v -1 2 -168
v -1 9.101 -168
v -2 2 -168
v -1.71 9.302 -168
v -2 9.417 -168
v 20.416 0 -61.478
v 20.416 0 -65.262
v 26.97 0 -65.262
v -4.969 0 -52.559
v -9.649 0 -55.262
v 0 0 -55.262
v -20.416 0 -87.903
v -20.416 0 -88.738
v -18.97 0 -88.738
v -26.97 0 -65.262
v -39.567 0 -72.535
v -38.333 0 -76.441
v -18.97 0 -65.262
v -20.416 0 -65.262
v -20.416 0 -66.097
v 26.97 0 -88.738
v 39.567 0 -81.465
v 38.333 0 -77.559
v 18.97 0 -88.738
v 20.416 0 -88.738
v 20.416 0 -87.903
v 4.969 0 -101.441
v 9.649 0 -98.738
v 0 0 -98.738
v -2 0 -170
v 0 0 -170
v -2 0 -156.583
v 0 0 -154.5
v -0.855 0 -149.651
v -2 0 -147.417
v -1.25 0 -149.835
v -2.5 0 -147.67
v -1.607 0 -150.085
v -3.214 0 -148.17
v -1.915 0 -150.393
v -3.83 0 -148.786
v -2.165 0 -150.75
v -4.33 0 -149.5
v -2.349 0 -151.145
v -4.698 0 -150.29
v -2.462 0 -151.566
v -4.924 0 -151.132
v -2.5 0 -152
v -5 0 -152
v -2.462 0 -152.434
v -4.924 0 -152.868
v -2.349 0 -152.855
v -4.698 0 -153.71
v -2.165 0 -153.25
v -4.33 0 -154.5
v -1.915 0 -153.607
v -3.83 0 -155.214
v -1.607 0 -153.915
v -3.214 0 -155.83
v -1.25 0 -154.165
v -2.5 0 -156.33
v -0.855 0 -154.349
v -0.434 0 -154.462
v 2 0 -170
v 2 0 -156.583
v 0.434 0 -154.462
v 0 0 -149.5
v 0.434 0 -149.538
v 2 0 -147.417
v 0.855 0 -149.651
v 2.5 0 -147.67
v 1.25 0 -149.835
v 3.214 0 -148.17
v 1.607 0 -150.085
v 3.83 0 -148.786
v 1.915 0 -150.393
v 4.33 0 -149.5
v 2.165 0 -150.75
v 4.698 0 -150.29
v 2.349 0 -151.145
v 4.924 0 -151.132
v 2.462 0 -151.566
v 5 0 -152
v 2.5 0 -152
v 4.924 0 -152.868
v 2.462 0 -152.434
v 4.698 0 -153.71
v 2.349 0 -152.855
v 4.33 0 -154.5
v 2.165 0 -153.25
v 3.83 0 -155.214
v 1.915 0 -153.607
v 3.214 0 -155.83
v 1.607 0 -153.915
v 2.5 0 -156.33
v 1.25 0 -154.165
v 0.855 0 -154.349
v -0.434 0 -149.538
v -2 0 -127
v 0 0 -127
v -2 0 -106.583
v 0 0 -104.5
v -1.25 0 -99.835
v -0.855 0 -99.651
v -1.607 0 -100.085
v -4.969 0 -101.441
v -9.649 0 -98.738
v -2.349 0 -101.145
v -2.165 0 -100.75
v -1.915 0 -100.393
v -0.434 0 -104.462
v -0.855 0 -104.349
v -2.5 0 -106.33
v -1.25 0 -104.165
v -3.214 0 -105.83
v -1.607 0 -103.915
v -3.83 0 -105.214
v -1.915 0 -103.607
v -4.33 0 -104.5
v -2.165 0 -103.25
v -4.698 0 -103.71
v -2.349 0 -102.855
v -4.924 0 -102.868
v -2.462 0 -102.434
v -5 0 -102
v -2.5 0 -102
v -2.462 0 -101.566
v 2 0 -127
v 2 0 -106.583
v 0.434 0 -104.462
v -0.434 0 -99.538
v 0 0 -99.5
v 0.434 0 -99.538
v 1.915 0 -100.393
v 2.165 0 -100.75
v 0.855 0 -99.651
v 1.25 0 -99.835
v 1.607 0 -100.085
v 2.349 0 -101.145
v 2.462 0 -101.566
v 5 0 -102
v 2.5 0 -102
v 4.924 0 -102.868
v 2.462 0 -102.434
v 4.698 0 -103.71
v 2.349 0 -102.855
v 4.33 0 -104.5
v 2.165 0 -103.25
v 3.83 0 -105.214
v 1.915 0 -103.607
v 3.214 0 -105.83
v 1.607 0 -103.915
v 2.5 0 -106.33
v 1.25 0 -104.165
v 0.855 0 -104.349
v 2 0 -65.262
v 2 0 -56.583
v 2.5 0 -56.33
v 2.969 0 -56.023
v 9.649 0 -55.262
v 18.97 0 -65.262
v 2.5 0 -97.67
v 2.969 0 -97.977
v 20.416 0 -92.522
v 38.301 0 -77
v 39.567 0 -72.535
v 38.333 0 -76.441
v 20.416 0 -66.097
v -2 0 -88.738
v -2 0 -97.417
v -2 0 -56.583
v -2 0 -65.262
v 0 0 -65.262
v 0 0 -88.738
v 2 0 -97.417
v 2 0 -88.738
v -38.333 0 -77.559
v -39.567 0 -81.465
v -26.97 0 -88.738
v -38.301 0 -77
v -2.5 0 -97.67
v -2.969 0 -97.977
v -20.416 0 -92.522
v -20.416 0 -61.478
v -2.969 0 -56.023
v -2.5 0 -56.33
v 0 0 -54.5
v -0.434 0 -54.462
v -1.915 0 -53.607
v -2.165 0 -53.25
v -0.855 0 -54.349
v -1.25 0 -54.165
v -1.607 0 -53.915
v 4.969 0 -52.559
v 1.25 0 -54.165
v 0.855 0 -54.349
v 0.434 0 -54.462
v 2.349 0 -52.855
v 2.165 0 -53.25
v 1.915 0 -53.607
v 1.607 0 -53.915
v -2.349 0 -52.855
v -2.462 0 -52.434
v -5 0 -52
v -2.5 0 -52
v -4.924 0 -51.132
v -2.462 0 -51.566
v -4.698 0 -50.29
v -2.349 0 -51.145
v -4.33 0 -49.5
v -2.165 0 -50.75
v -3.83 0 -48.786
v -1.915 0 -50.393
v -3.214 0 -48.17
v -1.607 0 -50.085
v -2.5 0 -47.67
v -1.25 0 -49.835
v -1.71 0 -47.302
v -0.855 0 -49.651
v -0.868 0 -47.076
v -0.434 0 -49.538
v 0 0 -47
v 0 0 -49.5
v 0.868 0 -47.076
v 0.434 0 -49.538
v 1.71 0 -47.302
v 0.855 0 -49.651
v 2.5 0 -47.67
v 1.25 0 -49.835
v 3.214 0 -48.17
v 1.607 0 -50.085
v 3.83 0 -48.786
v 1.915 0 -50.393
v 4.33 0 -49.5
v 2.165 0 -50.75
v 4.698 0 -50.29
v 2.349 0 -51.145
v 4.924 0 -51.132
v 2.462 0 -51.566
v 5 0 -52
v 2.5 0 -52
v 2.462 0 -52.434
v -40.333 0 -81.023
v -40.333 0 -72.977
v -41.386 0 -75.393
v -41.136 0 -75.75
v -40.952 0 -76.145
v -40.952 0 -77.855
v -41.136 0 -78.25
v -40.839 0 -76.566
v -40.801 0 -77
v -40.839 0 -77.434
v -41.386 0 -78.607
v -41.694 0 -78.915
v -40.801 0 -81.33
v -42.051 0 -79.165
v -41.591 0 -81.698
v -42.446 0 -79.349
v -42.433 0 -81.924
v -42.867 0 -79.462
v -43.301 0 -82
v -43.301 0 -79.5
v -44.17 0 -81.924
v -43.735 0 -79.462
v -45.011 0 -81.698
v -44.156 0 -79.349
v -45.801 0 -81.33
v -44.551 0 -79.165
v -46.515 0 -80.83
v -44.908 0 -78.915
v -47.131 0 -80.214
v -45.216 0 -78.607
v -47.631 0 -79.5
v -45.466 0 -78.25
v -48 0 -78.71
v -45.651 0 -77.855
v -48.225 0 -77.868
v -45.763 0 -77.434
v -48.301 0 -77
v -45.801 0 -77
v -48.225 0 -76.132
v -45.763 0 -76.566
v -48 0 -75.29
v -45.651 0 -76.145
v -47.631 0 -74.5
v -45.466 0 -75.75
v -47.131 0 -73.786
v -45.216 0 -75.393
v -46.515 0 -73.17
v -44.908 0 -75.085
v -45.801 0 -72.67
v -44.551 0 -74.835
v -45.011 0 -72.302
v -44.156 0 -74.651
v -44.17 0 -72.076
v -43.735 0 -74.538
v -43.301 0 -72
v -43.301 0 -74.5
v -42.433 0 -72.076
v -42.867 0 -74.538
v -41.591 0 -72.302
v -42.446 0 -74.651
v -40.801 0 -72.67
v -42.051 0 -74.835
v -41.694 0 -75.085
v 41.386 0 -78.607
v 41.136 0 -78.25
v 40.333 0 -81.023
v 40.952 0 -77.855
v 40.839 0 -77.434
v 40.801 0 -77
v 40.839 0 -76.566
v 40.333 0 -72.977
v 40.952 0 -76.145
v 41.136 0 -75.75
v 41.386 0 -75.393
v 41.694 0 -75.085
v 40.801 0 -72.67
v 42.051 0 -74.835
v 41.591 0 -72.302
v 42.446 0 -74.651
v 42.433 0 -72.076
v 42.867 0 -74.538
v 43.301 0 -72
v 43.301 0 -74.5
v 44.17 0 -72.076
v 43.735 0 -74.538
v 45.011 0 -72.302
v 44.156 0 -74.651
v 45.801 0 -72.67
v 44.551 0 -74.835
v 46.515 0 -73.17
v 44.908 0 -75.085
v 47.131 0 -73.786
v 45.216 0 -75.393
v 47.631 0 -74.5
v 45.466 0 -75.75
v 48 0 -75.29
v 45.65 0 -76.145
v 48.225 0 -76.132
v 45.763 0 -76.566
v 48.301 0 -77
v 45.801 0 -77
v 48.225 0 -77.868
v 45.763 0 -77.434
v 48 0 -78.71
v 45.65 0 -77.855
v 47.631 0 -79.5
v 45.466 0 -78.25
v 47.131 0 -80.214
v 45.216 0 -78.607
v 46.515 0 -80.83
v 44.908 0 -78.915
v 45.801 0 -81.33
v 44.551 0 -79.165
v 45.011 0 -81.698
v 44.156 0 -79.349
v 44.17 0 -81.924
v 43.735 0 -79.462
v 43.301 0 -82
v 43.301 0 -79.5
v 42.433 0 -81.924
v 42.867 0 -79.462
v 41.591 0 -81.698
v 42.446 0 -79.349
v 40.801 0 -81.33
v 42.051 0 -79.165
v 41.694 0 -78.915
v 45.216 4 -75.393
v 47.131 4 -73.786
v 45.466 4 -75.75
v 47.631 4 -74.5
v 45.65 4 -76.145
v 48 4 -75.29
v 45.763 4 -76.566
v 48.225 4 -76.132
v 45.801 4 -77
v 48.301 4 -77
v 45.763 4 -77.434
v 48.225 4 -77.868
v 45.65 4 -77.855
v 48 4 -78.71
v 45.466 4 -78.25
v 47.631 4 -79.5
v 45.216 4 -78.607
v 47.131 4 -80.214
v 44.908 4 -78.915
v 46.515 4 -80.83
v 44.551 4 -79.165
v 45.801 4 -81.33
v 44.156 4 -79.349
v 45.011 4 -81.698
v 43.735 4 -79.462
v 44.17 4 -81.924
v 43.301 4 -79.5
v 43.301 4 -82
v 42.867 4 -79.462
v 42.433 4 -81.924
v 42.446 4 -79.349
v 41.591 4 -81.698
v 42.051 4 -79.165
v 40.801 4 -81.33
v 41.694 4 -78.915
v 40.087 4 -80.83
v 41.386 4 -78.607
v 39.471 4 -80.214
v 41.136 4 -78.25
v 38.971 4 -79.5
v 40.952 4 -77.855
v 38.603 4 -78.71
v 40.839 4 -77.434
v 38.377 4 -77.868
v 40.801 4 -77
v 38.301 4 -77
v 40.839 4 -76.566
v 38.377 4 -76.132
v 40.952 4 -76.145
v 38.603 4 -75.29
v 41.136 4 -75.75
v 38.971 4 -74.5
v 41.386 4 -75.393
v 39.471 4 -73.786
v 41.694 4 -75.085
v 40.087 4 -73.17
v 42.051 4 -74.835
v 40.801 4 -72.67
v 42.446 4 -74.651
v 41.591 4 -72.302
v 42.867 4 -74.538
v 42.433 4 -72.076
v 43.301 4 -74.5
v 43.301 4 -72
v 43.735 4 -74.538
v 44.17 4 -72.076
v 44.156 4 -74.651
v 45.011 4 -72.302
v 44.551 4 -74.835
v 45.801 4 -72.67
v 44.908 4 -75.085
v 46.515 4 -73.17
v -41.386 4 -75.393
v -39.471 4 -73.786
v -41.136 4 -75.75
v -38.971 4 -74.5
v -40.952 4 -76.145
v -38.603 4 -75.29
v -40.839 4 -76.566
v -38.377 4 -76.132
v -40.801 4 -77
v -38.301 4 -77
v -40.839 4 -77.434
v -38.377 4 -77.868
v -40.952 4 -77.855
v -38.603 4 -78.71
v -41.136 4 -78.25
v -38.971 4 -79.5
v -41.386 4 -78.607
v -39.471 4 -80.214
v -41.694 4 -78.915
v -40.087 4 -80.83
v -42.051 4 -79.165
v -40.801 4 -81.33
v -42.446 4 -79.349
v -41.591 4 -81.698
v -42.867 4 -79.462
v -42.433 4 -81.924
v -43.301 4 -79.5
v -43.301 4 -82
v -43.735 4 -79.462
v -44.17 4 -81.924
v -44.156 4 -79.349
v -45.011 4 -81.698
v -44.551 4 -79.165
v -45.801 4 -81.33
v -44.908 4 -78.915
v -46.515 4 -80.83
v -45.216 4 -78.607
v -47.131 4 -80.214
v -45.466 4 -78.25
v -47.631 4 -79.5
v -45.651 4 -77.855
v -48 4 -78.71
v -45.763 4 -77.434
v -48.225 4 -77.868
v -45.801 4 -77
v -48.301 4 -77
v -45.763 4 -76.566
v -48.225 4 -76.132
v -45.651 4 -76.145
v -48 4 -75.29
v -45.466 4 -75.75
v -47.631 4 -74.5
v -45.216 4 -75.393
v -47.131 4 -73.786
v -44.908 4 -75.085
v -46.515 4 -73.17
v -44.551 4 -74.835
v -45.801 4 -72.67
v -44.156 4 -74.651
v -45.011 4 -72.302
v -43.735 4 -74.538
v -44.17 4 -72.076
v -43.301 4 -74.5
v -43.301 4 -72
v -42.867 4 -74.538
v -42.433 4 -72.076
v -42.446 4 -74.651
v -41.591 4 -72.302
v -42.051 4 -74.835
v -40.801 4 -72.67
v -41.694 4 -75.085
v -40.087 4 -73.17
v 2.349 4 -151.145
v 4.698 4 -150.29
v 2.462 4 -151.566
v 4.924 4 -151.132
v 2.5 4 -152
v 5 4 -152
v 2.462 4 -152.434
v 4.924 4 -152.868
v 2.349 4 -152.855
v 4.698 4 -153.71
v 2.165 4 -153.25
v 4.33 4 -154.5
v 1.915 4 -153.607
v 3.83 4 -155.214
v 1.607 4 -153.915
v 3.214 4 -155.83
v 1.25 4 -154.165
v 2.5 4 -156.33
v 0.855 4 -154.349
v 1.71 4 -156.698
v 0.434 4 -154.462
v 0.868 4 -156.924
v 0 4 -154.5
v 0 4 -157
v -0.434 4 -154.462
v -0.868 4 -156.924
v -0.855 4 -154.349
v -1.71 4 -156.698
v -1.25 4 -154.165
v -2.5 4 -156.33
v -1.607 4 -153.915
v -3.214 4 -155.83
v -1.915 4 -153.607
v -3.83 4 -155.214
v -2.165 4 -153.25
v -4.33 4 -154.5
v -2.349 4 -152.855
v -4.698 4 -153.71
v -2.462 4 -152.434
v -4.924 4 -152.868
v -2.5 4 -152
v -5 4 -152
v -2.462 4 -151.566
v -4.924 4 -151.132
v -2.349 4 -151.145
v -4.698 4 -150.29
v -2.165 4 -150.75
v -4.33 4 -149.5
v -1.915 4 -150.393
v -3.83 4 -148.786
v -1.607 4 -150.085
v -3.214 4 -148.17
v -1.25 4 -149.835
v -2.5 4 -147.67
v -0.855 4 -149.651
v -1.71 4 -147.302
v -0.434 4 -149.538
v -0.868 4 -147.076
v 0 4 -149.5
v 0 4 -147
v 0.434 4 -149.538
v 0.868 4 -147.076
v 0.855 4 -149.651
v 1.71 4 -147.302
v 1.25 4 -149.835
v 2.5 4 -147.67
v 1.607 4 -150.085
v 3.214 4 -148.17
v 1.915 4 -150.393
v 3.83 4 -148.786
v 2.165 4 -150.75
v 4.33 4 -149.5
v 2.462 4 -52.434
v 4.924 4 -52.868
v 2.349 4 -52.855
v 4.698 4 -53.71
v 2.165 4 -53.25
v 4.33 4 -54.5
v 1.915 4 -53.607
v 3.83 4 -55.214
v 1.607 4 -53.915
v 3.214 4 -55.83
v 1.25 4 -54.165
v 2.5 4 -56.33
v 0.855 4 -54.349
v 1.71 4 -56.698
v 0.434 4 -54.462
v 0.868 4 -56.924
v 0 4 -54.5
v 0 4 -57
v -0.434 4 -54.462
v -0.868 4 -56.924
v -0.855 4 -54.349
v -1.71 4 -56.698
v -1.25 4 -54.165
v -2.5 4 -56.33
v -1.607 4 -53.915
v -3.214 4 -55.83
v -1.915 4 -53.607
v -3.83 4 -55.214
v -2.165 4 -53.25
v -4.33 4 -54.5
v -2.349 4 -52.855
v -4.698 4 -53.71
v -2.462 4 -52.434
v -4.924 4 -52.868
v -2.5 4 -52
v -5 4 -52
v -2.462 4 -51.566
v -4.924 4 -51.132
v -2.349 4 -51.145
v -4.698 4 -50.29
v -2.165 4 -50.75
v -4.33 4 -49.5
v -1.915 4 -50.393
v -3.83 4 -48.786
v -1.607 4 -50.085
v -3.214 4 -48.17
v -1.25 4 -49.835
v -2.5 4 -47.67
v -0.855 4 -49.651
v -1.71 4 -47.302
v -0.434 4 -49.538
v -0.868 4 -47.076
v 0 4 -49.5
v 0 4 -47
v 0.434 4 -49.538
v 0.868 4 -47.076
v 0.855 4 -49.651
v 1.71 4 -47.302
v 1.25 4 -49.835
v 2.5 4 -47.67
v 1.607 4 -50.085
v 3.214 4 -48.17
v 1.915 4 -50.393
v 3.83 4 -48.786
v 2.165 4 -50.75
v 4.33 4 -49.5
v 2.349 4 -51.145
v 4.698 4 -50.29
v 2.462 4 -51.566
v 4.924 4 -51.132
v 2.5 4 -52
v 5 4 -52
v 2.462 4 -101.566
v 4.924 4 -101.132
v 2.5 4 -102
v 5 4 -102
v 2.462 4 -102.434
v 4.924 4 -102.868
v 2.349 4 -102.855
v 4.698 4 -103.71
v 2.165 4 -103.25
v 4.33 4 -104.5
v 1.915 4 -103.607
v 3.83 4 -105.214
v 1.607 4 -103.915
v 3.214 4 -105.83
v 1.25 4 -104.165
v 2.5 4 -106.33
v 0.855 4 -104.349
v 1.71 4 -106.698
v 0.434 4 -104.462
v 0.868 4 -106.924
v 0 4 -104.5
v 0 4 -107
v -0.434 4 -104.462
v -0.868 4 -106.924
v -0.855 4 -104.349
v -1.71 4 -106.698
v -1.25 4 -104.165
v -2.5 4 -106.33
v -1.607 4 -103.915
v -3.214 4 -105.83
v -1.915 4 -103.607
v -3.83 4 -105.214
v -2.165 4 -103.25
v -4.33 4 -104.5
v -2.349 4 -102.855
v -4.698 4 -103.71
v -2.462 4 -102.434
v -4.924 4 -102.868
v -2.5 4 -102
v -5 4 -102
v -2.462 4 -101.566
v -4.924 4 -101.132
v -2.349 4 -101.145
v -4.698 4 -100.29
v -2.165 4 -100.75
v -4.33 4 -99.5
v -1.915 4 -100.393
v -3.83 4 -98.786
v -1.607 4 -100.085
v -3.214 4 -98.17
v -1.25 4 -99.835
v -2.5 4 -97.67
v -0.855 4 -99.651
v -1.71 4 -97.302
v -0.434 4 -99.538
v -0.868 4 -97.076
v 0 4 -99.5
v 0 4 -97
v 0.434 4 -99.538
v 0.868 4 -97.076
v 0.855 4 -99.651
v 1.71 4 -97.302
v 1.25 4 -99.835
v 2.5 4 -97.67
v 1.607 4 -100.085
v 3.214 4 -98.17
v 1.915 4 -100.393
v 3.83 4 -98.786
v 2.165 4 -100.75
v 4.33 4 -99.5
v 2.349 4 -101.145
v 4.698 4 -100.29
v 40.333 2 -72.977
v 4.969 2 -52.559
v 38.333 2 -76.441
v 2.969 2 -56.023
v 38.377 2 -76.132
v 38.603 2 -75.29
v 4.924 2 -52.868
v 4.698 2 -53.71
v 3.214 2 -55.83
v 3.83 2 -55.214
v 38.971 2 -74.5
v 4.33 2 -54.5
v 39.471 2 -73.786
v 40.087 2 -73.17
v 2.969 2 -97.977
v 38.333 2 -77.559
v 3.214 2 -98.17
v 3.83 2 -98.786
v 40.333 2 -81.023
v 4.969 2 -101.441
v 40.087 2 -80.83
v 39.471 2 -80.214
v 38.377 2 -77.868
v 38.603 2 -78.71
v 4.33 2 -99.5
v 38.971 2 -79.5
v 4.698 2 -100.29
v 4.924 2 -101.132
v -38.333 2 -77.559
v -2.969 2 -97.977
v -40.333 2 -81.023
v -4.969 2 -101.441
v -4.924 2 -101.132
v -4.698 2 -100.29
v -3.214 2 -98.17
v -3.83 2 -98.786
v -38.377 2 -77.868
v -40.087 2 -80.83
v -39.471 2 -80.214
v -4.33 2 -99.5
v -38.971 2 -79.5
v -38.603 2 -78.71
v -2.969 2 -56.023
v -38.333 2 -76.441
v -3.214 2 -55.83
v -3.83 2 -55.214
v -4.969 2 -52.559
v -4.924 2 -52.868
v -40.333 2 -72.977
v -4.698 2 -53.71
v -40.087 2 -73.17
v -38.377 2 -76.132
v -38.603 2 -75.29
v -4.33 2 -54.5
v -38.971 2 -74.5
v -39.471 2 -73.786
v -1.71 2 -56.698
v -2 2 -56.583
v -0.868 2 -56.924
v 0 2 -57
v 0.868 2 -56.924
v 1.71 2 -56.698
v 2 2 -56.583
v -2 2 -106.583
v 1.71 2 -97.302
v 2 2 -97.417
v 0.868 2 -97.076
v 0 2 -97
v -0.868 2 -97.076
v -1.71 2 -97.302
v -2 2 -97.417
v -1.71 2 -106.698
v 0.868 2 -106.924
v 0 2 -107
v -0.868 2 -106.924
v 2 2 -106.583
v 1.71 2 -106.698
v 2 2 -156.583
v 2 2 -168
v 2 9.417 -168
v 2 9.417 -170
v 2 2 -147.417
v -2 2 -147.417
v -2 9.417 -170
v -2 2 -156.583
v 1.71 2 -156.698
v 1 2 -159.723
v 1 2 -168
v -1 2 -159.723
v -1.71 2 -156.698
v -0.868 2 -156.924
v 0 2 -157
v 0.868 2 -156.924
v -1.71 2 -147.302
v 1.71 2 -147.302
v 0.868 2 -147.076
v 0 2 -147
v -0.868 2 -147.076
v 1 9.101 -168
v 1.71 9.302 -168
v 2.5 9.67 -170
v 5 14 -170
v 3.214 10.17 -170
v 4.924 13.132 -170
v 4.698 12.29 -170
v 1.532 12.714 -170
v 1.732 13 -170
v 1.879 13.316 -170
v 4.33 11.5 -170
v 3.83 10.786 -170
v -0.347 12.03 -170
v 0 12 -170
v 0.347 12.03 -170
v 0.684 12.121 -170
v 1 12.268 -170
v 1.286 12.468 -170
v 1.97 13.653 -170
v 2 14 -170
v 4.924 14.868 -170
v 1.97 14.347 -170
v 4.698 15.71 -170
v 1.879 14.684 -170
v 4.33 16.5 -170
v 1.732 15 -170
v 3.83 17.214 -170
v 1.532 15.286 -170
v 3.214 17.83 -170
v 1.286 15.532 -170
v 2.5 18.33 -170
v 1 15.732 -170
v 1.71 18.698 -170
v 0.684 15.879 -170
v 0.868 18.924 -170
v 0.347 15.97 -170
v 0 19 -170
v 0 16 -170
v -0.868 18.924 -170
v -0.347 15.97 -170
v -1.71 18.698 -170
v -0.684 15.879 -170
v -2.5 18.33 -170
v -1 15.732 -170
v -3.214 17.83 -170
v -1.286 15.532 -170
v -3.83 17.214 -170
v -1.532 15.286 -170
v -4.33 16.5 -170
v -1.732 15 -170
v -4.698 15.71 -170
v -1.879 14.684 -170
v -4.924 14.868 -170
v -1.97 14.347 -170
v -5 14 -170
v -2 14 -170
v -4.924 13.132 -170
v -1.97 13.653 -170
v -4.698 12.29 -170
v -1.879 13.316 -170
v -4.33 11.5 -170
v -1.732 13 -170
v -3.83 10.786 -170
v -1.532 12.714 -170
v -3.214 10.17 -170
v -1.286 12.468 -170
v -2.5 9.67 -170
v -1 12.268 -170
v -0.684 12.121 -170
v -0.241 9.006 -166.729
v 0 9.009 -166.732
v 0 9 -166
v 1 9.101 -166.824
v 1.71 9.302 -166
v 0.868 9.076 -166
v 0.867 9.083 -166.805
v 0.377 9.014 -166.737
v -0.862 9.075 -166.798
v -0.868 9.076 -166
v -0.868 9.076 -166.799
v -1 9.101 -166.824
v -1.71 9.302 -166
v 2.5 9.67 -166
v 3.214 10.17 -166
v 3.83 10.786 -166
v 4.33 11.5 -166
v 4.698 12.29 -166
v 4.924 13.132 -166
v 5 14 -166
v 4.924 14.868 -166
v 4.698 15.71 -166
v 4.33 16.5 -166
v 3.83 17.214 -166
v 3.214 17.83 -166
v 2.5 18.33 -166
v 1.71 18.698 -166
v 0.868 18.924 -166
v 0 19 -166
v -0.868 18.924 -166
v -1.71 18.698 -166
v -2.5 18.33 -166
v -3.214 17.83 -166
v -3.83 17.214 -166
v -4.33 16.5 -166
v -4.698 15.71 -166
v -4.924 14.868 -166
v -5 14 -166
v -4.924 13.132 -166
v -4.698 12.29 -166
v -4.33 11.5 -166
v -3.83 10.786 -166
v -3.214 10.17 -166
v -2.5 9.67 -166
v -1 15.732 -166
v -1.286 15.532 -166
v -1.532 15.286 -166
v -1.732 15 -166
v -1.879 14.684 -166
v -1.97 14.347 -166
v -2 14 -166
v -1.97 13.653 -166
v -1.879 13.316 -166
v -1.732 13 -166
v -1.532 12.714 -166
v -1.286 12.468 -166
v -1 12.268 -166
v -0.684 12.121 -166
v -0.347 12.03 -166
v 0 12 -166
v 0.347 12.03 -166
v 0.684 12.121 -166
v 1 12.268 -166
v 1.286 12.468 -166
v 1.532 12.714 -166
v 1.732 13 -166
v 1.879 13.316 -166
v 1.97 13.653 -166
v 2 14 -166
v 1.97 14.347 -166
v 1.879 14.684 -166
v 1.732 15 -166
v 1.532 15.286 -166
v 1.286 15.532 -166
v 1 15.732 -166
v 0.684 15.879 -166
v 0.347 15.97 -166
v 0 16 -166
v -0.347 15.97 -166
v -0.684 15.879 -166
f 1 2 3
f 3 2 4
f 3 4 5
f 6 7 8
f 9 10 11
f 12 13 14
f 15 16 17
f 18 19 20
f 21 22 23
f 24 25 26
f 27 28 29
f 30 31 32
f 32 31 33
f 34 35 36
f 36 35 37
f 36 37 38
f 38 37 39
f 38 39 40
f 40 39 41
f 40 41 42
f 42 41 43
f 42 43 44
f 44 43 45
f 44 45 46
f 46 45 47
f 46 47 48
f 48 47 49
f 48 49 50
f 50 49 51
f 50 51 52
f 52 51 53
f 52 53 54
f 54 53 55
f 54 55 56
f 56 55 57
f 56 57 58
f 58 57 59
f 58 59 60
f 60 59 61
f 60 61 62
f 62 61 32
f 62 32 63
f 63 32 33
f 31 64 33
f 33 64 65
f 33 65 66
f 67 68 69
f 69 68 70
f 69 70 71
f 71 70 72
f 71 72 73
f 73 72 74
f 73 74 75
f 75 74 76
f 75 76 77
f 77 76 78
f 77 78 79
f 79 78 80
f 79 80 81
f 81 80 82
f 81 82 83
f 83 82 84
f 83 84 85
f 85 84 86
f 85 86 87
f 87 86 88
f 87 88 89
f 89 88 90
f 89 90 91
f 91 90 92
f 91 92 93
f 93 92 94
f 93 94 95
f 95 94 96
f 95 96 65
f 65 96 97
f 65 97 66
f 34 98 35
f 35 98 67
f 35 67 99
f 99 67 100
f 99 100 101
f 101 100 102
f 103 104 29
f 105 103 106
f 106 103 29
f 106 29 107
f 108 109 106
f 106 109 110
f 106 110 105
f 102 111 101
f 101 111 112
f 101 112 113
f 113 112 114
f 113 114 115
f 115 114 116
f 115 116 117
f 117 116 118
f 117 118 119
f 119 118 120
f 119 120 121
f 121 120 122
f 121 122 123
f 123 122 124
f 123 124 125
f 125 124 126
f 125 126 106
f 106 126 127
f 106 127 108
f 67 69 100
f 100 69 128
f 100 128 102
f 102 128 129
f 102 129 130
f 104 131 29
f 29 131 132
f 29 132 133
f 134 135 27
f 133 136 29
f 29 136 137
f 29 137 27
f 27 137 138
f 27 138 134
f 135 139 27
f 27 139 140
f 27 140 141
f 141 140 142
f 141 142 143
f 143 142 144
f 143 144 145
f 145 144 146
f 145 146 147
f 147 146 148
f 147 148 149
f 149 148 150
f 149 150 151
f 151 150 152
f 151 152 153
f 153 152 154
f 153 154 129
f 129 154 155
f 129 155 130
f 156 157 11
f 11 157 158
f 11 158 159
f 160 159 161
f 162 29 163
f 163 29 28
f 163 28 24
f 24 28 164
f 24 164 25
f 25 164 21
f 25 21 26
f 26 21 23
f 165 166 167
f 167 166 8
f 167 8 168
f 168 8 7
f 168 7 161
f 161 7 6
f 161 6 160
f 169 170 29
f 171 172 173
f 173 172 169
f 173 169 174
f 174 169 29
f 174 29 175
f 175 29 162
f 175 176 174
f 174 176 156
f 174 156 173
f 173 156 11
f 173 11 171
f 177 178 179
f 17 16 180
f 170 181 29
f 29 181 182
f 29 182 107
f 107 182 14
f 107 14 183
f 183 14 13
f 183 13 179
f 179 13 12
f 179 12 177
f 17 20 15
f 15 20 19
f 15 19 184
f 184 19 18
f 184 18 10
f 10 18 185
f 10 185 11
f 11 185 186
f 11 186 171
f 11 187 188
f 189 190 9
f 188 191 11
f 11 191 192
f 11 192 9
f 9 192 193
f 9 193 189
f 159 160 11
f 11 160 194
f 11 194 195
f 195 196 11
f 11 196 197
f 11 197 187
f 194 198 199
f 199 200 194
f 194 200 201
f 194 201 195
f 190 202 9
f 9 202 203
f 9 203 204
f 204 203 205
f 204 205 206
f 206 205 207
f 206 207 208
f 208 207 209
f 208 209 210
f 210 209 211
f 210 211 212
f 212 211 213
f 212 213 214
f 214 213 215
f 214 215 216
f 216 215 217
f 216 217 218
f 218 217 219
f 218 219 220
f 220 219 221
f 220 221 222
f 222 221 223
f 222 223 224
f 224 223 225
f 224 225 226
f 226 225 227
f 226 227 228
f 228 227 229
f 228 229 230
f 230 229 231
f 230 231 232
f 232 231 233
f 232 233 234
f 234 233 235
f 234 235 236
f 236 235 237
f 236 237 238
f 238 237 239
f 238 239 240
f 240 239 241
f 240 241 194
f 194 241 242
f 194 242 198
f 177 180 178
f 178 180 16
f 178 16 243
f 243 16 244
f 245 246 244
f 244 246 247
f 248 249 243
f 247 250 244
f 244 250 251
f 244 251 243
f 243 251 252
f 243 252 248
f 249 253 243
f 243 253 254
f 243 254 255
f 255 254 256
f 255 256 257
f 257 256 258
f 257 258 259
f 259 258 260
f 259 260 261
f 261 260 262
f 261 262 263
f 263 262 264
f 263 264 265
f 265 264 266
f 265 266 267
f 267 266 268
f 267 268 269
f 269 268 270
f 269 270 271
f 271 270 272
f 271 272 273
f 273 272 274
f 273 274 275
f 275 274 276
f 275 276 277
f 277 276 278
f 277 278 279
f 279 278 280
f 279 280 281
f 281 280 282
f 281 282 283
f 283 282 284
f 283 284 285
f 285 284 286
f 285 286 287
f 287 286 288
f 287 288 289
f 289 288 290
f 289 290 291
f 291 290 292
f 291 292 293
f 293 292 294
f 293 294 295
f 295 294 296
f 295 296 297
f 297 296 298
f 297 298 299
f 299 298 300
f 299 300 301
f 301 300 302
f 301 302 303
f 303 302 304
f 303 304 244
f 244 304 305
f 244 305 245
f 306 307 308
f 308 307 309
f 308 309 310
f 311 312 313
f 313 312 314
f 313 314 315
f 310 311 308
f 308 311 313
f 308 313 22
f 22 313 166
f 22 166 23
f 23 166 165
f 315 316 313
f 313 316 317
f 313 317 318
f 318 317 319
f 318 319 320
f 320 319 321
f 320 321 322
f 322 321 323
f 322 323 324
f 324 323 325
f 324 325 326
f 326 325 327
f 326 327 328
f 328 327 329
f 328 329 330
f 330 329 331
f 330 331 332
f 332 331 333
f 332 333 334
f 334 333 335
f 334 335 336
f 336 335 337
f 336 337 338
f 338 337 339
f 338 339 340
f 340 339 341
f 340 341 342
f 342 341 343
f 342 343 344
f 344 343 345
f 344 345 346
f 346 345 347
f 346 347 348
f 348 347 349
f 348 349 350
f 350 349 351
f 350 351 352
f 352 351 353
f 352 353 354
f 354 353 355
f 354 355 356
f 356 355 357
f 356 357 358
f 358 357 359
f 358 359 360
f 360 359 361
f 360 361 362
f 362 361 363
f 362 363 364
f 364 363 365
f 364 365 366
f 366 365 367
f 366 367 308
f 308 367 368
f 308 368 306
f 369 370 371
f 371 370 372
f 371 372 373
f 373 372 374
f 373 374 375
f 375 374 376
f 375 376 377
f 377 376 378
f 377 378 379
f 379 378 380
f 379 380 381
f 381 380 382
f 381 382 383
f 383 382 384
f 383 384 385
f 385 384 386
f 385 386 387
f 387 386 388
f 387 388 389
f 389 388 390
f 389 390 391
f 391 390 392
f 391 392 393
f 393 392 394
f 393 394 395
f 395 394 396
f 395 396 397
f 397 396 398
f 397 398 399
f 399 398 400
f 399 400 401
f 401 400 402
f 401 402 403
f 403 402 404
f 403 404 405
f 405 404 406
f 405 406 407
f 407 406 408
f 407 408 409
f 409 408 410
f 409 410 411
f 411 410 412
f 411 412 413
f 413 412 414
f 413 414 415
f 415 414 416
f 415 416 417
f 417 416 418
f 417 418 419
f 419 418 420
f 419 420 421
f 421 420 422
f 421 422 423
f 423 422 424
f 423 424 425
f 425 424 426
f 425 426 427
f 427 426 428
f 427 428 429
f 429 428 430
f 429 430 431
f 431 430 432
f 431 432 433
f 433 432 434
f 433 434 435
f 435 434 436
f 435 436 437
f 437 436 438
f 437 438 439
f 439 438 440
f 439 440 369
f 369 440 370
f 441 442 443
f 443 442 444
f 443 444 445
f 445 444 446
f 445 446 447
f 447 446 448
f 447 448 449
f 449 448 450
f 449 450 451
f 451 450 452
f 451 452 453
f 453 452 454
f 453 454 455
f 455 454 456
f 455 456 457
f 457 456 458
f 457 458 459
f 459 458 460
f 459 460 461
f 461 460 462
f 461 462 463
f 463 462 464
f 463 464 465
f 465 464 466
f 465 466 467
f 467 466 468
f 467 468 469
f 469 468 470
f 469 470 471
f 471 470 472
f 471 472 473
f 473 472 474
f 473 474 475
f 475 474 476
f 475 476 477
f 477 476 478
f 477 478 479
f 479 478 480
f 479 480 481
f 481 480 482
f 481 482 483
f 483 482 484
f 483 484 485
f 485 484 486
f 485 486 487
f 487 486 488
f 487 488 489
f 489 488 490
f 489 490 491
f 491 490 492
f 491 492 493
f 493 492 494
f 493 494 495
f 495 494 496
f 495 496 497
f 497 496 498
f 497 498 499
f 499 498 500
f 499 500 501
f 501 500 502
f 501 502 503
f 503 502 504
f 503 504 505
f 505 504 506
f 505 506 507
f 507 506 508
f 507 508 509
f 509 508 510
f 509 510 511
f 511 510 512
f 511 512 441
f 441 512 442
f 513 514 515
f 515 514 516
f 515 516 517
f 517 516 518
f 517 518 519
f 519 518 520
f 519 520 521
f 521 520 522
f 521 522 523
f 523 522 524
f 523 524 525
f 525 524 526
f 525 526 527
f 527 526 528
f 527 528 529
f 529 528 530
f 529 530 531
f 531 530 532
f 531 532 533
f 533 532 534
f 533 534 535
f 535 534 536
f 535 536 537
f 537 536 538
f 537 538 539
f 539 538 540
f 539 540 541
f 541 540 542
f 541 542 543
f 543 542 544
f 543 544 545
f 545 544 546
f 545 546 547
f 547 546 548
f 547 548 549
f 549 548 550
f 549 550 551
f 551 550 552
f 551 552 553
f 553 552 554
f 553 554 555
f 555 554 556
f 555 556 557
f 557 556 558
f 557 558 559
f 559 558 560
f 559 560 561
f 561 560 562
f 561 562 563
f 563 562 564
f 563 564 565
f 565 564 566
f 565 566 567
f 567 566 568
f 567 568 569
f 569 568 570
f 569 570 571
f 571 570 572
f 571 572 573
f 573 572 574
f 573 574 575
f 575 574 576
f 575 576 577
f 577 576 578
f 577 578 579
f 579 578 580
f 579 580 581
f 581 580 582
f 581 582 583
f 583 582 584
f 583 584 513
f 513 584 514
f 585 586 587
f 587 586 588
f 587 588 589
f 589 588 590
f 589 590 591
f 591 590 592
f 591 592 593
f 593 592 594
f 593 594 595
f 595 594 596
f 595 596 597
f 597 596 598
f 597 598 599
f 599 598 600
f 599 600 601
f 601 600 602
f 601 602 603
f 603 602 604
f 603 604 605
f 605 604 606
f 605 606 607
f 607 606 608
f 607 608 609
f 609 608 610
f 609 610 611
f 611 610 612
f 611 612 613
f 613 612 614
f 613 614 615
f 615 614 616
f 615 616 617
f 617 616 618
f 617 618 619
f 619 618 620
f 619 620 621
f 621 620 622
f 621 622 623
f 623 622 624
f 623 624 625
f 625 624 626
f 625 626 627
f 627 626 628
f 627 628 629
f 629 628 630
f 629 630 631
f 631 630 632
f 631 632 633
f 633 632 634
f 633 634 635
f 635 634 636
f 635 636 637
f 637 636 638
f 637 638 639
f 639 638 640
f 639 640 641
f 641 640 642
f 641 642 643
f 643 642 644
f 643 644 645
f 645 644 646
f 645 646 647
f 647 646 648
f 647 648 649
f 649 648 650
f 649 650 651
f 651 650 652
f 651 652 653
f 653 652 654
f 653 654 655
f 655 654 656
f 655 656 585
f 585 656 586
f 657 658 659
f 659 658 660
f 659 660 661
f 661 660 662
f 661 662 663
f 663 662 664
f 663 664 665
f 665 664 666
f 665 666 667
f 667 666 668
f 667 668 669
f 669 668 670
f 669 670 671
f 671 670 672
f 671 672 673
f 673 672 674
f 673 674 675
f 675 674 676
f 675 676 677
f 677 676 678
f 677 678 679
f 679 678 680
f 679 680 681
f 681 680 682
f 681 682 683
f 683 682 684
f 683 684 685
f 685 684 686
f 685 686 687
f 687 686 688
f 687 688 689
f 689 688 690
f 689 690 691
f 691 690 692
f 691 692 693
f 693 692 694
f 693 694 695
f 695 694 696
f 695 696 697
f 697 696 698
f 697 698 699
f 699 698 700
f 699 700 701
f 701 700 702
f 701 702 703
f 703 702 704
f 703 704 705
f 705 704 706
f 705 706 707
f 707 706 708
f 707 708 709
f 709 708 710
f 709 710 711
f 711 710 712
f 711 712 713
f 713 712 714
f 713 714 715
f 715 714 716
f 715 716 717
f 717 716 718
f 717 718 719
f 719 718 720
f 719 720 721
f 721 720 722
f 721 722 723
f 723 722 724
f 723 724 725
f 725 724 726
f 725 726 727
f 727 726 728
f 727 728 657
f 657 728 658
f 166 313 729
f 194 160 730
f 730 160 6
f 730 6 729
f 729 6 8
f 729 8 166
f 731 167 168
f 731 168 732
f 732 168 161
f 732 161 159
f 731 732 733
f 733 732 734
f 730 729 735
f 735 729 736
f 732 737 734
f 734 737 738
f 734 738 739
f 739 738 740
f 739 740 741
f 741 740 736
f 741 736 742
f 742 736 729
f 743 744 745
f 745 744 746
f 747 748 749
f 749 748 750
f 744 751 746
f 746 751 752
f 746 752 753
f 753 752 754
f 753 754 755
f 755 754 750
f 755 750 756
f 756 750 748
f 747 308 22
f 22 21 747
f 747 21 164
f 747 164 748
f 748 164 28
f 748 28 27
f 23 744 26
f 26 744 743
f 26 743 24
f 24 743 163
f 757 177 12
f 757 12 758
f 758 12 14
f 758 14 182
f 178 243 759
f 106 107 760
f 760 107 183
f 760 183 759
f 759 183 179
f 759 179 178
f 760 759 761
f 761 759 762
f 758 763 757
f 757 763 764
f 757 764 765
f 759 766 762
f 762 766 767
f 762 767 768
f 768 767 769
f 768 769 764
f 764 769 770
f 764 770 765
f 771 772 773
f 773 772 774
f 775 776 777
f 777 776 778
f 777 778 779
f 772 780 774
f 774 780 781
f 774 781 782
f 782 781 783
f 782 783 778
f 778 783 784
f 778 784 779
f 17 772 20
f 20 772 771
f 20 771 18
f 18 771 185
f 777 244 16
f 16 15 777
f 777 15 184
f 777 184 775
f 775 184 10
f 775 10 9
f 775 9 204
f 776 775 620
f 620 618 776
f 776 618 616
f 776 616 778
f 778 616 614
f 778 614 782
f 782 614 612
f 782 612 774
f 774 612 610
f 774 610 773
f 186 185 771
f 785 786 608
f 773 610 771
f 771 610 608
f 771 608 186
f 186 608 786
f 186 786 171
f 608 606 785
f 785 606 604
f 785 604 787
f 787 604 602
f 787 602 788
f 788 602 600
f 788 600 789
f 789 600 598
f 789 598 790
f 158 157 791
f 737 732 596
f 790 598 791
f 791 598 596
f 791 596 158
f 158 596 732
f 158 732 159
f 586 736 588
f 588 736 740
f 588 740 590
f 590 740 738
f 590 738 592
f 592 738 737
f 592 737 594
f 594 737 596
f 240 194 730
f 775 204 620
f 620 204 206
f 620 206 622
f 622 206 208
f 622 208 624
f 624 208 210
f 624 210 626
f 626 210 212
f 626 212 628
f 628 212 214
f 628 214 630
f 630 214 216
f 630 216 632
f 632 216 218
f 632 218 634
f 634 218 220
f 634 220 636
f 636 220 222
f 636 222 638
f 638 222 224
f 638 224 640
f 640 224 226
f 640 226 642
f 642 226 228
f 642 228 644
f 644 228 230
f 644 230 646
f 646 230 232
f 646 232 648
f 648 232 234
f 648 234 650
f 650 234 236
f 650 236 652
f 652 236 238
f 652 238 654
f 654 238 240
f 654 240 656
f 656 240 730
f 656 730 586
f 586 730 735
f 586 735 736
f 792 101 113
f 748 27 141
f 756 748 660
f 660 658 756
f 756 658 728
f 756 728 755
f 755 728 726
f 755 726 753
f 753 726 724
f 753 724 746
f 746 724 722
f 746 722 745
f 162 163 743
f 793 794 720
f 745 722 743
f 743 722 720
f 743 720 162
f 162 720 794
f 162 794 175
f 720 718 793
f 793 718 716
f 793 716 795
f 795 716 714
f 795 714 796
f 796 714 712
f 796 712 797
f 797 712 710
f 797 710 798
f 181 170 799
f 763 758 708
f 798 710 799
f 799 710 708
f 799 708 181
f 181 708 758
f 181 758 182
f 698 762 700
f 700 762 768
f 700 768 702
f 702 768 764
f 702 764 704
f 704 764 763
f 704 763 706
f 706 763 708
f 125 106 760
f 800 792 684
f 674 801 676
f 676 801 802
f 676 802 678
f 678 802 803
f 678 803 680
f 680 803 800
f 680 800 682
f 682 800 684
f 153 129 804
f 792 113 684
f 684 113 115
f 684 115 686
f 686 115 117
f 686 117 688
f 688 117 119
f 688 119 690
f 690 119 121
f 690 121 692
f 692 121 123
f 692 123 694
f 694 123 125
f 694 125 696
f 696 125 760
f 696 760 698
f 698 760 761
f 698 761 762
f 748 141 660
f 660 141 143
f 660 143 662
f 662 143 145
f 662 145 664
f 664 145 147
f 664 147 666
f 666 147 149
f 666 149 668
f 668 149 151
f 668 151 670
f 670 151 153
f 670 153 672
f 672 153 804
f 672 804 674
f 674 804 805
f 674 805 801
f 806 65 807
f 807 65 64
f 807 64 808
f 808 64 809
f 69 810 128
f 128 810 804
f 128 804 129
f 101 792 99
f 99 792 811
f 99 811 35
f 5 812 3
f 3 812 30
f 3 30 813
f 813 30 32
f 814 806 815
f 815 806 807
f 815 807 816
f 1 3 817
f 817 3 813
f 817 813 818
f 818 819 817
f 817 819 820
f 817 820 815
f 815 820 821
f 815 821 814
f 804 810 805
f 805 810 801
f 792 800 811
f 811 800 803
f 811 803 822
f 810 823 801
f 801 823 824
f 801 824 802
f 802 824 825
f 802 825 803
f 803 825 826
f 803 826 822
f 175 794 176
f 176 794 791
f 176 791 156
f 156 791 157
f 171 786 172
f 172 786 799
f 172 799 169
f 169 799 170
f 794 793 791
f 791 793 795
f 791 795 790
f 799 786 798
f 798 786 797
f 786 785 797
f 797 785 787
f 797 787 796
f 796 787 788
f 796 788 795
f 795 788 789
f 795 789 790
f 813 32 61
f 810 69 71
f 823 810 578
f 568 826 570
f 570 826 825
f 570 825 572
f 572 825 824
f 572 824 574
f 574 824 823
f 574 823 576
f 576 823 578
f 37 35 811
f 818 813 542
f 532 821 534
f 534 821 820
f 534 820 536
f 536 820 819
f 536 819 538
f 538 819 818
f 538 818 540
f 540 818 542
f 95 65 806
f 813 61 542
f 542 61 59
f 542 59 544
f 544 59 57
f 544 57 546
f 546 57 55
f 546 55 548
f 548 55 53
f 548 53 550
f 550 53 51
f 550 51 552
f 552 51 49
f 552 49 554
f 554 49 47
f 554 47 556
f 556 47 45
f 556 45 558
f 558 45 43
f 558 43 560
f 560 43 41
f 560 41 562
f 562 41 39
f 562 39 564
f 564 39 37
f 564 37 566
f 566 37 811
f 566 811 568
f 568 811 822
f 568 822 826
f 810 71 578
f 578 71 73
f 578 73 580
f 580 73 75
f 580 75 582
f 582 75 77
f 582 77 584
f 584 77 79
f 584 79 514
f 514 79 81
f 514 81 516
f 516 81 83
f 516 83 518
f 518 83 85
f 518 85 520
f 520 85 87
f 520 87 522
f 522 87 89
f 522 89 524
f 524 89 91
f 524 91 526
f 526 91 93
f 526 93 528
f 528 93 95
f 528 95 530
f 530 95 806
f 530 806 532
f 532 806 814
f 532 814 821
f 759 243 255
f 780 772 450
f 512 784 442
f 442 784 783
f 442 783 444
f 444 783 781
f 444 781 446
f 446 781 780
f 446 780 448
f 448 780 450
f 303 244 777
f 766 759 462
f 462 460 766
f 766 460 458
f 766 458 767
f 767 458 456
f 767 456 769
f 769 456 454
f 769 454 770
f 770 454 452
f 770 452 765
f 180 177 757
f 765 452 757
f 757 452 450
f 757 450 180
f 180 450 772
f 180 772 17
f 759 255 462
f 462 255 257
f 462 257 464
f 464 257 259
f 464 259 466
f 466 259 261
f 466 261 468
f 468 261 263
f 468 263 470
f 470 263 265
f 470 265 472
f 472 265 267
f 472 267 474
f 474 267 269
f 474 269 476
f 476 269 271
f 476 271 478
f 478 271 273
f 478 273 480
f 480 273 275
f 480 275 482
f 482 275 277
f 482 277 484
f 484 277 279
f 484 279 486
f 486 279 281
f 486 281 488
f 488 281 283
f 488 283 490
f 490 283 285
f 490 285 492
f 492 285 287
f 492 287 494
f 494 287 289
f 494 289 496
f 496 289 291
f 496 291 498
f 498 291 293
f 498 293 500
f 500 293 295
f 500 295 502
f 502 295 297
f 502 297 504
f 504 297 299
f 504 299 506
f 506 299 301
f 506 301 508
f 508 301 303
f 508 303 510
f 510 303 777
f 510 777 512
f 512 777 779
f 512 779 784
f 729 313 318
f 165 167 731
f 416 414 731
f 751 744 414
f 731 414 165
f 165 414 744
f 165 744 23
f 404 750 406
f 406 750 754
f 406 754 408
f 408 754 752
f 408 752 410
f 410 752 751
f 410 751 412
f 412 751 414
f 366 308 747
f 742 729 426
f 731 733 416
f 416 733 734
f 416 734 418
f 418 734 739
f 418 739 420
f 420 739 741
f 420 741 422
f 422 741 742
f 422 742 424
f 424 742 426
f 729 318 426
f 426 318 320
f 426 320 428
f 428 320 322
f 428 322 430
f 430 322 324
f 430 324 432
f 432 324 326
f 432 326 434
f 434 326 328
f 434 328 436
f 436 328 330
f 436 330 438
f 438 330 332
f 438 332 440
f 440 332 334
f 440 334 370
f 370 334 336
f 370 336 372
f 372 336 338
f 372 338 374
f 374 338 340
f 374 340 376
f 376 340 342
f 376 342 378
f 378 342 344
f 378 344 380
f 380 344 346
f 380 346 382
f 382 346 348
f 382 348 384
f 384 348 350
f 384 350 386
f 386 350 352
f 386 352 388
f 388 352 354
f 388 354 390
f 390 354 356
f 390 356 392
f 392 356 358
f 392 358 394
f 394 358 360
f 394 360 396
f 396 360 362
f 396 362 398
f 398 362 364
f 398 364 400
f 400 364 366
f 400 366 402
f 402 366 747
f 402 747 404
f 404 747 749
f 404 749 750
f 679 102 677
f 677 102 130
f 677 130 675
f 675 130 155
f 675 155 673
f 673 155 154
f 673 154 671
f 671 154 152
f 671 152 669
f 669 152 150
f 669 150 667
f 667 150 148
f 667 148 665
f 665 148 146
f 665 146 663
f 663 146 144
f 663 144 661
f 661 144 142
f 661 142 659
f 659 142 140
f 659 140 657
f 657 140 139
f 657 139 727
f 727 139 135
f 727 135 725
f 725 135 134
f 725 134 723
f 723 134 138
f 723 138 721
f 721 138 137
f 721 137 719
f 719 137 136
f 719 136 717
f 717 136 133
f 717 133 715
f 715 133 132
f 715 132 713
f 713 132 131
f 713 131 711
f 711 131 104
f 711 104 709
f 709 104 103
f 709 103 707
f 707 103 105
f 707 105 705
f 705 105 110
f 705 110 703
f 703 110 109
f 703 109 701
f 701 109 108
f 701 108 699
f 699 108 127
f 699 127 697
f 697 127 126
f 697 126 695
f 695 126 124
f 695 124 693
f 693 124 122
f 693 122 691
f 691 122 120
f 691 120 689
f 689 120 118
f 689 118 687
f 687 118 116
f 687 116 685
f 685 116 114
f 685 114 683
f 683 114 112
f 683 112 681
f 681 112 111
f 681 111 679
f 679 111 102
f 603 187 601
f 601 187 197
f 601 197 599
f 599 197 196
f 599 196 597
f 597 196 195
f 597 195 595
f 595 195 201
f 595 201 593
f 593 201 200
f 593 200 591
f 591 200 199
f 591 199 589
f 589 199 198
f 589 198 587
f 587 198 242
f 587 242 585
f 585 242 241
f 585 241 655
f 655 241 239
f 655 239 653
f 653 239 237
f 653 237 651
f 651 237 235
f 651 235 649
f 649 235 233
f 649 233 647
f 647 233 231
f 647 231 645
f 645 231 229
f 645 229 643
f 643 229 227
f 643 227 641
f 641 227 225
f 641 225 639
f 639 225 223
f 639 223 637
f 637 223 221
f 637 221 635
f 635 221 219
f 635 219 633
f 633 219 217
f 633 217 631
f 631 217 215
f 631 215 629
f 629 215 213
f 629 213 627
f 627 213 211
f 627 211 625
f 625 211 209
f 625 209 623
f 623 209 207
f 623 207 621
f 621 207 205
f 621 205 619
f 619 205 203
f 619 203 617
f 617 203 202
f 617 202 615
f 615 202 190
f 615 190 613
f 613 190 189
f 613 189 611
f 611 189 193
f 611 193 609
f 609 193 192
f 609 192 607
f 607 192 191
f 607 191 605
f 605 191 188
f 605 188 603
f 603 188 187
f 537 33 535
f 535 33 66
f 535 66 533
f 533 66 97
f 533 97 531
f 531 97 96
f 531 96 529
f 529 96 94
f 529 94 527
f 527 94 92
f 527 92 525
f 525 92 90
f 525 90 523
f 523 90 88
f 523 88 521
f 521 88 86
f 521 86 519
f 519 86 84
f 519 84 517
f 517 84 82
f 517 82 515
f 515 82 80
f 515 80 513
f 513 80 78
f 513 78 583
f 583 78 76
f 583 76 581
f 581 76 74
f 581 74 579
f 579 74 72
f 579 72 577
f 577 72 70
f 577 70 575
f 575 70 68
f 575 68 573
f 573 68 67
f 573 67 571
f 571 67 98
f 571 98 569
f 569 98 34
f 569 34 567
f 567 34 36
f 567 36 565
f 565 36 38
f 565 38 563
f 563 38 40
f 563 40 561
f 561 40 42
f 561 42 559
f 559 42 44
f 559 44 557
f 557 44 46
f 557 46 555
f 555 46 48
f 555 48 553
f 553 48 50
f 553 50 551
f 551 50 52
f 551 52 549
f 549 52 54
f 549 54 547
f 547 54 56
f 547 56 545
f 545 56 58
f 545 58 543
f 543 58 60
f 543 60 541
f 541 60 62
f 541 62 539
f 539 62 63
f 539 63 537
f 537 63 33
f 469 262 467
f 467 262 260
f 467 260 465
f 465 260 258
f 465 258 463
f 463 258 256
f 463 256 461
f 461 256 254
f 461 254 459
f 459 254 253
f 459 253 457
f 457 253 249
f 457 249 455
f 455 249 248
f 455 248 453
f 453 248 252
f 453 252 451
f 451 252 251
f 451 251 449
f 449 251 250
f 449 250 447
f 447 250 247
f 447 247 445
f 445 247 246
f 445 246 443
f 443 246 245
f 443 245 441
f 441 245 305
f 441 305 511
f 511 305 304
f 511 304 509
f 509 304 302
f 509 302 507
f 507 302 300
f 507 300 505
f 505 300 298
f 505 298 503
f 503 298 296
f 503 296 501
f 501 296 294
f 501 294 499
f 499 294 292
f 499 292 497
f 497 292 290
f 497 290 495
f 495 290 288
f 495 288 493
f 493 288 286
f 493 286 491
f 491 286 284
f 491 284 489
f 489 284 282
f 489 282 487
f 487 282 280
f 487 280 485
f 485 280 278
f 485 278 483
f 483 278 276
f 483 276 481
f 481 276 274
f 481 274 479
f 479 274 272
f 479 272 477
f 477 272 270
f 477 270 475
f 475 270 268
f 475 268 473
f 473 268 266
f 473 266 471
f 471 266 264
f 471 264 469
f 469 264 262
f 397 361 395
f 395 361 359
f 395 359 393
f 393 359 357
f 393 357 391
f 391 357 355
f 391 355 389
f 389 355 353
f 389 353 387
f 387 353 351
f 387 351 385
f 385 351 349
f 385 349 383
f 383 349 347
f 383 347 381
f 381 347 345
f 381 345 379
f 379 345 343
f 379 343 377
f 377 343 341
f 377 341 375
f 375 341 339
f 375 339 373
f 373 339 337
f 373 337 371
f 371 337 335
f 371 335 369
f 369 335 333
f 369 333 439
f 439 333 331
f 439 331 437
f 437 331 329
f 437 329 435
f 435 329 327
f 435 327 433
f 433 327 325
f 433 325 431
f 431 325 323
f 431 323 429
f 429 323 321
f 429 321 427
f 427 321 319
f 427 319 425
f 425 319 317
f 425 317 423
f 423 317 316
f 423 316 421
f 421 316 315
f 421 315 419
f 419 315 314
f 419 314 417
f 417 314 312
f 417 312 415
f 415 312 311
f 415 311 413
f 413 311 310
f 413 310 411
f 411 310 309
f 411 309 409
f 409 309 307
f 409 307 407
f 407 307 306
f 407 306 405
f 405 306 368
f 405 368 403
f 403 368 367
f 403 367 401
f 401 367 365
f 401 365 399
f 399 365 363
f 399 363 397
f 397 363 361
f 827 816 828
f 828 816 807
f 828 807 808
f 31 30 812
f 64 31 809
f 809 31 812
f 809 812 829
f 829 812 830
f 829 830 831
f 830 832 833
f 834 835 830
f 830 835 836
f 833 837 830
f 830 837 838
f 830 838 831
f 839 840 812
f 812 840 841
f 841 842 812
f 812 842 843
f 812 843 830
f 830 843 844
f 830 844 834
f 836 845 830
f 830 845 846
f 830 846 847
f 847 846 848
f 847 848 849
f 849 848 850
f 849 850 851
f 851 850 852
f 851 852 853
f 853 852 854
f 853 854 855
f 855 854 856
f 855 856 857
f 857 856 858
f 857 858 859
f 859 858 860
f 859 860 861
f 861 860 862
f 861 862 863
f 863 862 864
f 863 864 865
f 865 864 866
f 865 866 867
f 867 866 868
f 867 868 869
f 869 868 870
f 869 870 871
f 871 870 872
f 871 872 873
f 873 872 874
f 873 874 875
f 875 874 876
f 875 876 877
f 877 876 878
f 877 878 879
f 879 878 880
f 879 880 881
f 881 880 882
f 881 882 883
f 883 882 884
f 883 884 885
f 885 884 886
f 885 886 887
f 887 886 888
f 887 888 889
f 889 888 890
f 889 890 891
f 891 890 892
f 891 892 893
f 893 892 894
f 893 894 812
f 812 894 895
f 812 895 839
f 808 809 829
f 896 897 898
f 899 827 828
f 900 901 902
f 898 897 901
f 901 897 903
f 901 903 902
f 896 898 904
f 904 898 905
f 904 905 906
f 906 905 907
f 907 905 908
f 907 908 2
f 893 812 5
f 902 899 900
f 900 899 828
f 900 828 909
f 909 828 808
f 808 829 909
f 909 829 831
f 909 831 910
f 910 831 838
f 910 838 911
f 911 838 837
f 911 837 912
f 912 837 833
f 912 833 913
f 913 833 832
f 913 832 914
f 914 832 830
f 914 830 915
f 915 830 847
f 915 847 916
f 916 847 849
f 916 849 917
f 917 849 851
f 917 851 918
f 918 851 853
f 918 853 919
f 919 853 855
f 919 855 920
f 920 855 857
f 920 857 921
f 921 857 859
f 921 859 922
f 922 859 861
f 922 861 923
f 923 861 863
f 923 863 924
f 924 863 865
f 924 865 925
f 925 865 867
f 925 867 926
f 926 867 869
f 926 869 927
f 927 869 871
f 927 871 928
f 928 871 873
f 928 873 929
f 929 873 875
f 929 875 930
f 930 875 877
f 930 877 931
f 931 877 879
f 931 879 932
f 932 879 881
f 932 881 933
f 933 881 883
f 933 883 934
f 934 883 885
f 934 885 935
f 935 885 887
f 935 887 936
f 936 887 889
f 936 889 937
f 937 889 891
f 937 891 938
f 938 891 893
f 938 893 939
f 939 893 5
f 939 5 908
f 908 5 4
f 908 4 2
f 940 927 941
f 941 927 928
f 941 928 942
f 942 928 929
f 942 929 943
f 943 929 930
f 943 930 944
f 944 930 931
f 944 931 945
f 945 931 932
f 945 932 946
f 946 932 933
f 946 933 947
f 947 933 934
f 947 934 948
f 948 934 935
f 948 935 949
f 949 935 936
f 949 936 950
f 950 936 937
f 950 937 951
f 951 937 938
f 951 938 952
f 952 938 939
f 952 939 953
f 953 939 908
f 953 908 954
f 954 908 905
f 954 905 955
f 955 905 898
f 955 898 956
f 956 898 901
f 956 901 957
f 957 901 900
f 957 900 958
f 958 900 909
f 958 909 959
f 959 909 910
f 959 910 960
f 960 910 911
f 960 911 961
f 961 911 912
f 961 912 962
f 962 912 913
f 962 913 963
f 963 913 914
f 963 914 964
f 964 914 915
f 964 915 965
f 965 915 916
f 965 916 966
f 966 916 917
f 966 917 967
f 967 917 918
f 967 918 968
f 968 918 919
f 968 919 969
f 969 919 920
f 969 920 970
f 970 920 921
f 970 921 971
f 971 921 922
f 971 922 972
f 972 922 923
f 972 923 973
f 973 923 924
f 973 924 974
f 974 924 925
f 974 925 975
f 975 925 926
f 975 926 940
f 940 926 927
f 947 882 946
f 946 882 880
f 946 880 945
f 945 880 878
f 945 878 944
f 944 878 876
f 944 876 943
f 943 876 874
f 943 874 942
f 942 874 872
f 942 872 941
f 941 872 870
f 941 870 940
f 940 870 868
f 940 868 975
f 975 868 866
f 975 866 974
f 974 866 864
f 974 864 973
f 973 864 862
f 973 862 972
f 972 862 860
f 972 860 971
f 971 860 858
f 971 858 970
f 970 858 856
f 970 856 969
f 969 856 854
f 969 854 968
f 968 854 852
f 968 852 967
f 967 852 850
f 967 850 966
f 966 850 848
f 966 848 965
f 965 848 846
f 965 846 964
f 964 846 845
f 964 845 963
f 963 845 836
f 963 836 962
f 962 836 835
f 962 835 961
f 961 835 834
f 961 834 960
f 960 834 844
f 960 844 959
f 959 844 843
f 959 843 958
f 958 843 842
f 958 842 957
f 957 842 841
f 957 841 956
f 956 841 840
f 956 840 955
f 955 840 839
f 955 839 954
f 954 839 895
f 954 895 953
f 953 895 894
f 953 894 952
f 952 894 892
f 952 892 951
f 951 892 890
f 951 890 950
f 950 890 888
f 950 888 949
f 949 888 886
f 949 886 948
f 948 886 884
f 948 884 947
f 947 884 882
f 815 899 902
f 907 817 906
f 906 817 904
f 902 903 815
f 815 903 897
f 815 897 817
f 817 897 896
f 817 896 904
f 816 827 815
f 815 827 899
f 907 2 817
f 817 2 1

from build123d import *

# Parameters (mm, degrees)
SKETCH_3_W          = 4
SKETCH_3_H          = 120
EXTRUDE_2_DEPTH     = 2
SKETCH_4_R          = 5
EXTRUDE_3_DEPTH     = 4
SKETCH_9_R          = 5
EXTRUDE_7_DEPTH     = 4
EXTRUDE_7_2_DEPTH   = 4
EXTRUDE_8_DEPTH     = 2
SKETCH_5_R          = 2.5
CUT_EXTRUDE_3_DEPTH = 175.851401773
SKETCH_11_W         = 4
SKETCH_11_H         = 2
EXTRUDE_9_DEPTH     = 10
SKETCH_12_R         = 5
EXTRUDE_10_DEPTH    = 4
CUT_EXTRUDE_4_REACH = 135.503
SKETCH_13_R         = 2
RIB_2_REACH         = 179.747
SKETCH_15_WALL_W    = 366.224417408
SKETCH_15_WALL_H    = 2


with BuildPart() as part:
    # Эскиз3 → Бобышка-Вытянуть2 (new body)
    with BuildSketch(Plane(origin=(0, 0, 0), x_dir=(1, 0, 0), z_dir=(0, 1, 0))):
        with Locations((0, 108)):
            Rectangle(SKETCH_3_W, SKETCH_3_H)
    extrude(amount=EXTRUDE_2_DEPTH)

    # Эскиз4 → Бобышка-Вытянуть3 (add)
    with BuildSketch(Plane(origin=(0, 0, 0), x_dir=(1, 0, 0), z_dir=(0, 1, 0))):
        with Locations(Location((0, 52, 0), (0, 0, 113.578178478))):
            Circle(SKETCH_4_R)
        with Locations(Location((0, 102, 0), (0, 0, 66.421821522))):
            Circle(SKETCH_4_R)
        with Locations(Location((0, 152, 0), (0, 0, 66.421821522))):
            Circle(SKETCH_4_R)
    extrude(amount=EXTRUDE_3_DEPTH)



with BuildPart() as body_2:
    # Эскиз9 → Бобышка-Вытянуть7 (new body)
    with BuildSketch(Plane(origin=(0, 0, 0), x_dir=(1, 0, 0), z_dir=(0, 1, 0))):
        with Locations(Location((-43.301270189, 77, 0), (0, 0, 270))):
            Circle(SKETCH_9_R)
    extrude(amount=EXTRUDE_7_DEPTH)


with BuildPart() as body_3:
    # Эскиз9 → Extrude 7 2 (new body)
    with BuildSketch(Plane(origin=(0, 0, 0), x_dir=(1, 0, 0), z_dir=(0, 1, 0))):
        with Locations(Location((43.301270189, 77, 0), (0, 0, 90))):
            Circle(SKETCH_9_R)
    extrude(amount=EXTRUDE_7_2_DEPTH)


with BuildPart() as part_1:
    add(part.part)

    add(body_2.part)  # Бобышка-Вытянуть8 merges body 2

    add(body_3.part)  # Бобышка-Вытянуть8 merges body 3
    # Эскиз10 → Бобышка-Вытянуть8 (add)
    with BuildSketch(Plane(origin=(0, 0, 0), x_dir=(1, 0, 0), z_dir=(0, 1, 0))):
        Polygon((0, 104.309401077), (-47.301270189, 77), (0, 49.690598923), (47.301270189, 77), align=None)
        Polygon((0, 99.690598923), (-39.301270189, 77), (0, 54.309401077), (39.301270189, 77), align=None, mode=Mode.SUBTRACT)
    extrude(amount=EXTRUDE_8_DEPTH)

    # Эскиз5 → Вырез-Вытянуть3 (cut, through all)
    with BuildSketch(Plane(origin=(0, 0, 0), x_dir=(1, 0, 0), z_dir=(0, 1, 0))):
        with Locations(Location((0, 102, 0), (0, 0, 270))):
            Circle(SKETCH_5_R)
        with Locations(Location((0, 52, 0), (0, 0, 270))):
            Circle(SKETCH_5_R)
        with Locations(Location((0, 152, 0), (0, 0, 270))):
            Circle(SKETCH_5_R)
        with Locations(Location((-43.301270189, 77, 0), (0, 0, 270))):
            Circle(SKETCH_5_R)
        with Locations(Location((43.301270189, 77, 0), (0, 0, 270))):
            Circle(SKETCH_5_R)
    extrude(amount=CUT_EXTRUDE_3_DEPTH, mode=Mode.SUBTRACT)

    # Эскиз11 → Бобышка-Вытянуть9 (add)
    with BuildSketch(Plane(origin=(0, 0, 0), x_dir=(1, 0, 0), z_dir=(0, 1, 0))):
        with Locations((0, 169)):
            Rectangle(SKETCH_11_W, SKETCH_11_H)
    extrude(amount=EXTRUDE_9_DEPTH)

    # Эскиз12 → Бобышка-Вытянуть10 (add)
    with BuildSketch(Plane(origin=(0, 0, -170), x_dir=(-1, 0, 0), z_dir=(0, 0, -1))):
        with Locations((0, 14)):
            Circle(SKETCH_12_R)
    extrude(amount=-EXTRUDE_10_DEPTH)

    # Эскиз13 → Вырез-Вытянуть4 (cut, up to next)
    with BuildSketch(Plane(origin=(0, 0, -170), x_dir=(-1, 0, 0), z_dir=(0, 0, -1)), mode=Mode.PRIVATE) as cut_extrude_4_sk1:
        with Locations((0, 14)):
            Circle(SKETCH_13_R)
    cut_extrude_4_tool1 = extrude(cut_extrude_4_sk1.sketch, amount=-CUT_EXTRUDE_4_REACH, mode=Mode.PRIVATE) & part_1.part
    add(cut_extrude_4_tool1.solids().sort_by_distance((0, 14, -170))[0], mode=Mode.SUBTRACT)

    # Эскиз15 wall → Ребро2 (add, up to next)
    with BuildSketch(Plane(origin=(0, 5.650617497, -163.373503951), x_dir=(0, -0.707106781187, 0.707106781187), z_dir=(0, -0.707106781187, -0.707106781187)), mode=Mode.PRIVATE) as rib_2_sk1:
        Rectangle(SKETCH_15_WALL_W, SKETCH_15_WALL_H)
    rib_2_tool1 = extrude(rib_2_sk1.sketch, amount=RIB_2_REACH, mode=Mode.PRIVATE) - part_1.part
    add(rib_2_tool1.solids().sort_by_distance((0, 5.650617497, -163.373503951))[0])


solid = part_1.part
